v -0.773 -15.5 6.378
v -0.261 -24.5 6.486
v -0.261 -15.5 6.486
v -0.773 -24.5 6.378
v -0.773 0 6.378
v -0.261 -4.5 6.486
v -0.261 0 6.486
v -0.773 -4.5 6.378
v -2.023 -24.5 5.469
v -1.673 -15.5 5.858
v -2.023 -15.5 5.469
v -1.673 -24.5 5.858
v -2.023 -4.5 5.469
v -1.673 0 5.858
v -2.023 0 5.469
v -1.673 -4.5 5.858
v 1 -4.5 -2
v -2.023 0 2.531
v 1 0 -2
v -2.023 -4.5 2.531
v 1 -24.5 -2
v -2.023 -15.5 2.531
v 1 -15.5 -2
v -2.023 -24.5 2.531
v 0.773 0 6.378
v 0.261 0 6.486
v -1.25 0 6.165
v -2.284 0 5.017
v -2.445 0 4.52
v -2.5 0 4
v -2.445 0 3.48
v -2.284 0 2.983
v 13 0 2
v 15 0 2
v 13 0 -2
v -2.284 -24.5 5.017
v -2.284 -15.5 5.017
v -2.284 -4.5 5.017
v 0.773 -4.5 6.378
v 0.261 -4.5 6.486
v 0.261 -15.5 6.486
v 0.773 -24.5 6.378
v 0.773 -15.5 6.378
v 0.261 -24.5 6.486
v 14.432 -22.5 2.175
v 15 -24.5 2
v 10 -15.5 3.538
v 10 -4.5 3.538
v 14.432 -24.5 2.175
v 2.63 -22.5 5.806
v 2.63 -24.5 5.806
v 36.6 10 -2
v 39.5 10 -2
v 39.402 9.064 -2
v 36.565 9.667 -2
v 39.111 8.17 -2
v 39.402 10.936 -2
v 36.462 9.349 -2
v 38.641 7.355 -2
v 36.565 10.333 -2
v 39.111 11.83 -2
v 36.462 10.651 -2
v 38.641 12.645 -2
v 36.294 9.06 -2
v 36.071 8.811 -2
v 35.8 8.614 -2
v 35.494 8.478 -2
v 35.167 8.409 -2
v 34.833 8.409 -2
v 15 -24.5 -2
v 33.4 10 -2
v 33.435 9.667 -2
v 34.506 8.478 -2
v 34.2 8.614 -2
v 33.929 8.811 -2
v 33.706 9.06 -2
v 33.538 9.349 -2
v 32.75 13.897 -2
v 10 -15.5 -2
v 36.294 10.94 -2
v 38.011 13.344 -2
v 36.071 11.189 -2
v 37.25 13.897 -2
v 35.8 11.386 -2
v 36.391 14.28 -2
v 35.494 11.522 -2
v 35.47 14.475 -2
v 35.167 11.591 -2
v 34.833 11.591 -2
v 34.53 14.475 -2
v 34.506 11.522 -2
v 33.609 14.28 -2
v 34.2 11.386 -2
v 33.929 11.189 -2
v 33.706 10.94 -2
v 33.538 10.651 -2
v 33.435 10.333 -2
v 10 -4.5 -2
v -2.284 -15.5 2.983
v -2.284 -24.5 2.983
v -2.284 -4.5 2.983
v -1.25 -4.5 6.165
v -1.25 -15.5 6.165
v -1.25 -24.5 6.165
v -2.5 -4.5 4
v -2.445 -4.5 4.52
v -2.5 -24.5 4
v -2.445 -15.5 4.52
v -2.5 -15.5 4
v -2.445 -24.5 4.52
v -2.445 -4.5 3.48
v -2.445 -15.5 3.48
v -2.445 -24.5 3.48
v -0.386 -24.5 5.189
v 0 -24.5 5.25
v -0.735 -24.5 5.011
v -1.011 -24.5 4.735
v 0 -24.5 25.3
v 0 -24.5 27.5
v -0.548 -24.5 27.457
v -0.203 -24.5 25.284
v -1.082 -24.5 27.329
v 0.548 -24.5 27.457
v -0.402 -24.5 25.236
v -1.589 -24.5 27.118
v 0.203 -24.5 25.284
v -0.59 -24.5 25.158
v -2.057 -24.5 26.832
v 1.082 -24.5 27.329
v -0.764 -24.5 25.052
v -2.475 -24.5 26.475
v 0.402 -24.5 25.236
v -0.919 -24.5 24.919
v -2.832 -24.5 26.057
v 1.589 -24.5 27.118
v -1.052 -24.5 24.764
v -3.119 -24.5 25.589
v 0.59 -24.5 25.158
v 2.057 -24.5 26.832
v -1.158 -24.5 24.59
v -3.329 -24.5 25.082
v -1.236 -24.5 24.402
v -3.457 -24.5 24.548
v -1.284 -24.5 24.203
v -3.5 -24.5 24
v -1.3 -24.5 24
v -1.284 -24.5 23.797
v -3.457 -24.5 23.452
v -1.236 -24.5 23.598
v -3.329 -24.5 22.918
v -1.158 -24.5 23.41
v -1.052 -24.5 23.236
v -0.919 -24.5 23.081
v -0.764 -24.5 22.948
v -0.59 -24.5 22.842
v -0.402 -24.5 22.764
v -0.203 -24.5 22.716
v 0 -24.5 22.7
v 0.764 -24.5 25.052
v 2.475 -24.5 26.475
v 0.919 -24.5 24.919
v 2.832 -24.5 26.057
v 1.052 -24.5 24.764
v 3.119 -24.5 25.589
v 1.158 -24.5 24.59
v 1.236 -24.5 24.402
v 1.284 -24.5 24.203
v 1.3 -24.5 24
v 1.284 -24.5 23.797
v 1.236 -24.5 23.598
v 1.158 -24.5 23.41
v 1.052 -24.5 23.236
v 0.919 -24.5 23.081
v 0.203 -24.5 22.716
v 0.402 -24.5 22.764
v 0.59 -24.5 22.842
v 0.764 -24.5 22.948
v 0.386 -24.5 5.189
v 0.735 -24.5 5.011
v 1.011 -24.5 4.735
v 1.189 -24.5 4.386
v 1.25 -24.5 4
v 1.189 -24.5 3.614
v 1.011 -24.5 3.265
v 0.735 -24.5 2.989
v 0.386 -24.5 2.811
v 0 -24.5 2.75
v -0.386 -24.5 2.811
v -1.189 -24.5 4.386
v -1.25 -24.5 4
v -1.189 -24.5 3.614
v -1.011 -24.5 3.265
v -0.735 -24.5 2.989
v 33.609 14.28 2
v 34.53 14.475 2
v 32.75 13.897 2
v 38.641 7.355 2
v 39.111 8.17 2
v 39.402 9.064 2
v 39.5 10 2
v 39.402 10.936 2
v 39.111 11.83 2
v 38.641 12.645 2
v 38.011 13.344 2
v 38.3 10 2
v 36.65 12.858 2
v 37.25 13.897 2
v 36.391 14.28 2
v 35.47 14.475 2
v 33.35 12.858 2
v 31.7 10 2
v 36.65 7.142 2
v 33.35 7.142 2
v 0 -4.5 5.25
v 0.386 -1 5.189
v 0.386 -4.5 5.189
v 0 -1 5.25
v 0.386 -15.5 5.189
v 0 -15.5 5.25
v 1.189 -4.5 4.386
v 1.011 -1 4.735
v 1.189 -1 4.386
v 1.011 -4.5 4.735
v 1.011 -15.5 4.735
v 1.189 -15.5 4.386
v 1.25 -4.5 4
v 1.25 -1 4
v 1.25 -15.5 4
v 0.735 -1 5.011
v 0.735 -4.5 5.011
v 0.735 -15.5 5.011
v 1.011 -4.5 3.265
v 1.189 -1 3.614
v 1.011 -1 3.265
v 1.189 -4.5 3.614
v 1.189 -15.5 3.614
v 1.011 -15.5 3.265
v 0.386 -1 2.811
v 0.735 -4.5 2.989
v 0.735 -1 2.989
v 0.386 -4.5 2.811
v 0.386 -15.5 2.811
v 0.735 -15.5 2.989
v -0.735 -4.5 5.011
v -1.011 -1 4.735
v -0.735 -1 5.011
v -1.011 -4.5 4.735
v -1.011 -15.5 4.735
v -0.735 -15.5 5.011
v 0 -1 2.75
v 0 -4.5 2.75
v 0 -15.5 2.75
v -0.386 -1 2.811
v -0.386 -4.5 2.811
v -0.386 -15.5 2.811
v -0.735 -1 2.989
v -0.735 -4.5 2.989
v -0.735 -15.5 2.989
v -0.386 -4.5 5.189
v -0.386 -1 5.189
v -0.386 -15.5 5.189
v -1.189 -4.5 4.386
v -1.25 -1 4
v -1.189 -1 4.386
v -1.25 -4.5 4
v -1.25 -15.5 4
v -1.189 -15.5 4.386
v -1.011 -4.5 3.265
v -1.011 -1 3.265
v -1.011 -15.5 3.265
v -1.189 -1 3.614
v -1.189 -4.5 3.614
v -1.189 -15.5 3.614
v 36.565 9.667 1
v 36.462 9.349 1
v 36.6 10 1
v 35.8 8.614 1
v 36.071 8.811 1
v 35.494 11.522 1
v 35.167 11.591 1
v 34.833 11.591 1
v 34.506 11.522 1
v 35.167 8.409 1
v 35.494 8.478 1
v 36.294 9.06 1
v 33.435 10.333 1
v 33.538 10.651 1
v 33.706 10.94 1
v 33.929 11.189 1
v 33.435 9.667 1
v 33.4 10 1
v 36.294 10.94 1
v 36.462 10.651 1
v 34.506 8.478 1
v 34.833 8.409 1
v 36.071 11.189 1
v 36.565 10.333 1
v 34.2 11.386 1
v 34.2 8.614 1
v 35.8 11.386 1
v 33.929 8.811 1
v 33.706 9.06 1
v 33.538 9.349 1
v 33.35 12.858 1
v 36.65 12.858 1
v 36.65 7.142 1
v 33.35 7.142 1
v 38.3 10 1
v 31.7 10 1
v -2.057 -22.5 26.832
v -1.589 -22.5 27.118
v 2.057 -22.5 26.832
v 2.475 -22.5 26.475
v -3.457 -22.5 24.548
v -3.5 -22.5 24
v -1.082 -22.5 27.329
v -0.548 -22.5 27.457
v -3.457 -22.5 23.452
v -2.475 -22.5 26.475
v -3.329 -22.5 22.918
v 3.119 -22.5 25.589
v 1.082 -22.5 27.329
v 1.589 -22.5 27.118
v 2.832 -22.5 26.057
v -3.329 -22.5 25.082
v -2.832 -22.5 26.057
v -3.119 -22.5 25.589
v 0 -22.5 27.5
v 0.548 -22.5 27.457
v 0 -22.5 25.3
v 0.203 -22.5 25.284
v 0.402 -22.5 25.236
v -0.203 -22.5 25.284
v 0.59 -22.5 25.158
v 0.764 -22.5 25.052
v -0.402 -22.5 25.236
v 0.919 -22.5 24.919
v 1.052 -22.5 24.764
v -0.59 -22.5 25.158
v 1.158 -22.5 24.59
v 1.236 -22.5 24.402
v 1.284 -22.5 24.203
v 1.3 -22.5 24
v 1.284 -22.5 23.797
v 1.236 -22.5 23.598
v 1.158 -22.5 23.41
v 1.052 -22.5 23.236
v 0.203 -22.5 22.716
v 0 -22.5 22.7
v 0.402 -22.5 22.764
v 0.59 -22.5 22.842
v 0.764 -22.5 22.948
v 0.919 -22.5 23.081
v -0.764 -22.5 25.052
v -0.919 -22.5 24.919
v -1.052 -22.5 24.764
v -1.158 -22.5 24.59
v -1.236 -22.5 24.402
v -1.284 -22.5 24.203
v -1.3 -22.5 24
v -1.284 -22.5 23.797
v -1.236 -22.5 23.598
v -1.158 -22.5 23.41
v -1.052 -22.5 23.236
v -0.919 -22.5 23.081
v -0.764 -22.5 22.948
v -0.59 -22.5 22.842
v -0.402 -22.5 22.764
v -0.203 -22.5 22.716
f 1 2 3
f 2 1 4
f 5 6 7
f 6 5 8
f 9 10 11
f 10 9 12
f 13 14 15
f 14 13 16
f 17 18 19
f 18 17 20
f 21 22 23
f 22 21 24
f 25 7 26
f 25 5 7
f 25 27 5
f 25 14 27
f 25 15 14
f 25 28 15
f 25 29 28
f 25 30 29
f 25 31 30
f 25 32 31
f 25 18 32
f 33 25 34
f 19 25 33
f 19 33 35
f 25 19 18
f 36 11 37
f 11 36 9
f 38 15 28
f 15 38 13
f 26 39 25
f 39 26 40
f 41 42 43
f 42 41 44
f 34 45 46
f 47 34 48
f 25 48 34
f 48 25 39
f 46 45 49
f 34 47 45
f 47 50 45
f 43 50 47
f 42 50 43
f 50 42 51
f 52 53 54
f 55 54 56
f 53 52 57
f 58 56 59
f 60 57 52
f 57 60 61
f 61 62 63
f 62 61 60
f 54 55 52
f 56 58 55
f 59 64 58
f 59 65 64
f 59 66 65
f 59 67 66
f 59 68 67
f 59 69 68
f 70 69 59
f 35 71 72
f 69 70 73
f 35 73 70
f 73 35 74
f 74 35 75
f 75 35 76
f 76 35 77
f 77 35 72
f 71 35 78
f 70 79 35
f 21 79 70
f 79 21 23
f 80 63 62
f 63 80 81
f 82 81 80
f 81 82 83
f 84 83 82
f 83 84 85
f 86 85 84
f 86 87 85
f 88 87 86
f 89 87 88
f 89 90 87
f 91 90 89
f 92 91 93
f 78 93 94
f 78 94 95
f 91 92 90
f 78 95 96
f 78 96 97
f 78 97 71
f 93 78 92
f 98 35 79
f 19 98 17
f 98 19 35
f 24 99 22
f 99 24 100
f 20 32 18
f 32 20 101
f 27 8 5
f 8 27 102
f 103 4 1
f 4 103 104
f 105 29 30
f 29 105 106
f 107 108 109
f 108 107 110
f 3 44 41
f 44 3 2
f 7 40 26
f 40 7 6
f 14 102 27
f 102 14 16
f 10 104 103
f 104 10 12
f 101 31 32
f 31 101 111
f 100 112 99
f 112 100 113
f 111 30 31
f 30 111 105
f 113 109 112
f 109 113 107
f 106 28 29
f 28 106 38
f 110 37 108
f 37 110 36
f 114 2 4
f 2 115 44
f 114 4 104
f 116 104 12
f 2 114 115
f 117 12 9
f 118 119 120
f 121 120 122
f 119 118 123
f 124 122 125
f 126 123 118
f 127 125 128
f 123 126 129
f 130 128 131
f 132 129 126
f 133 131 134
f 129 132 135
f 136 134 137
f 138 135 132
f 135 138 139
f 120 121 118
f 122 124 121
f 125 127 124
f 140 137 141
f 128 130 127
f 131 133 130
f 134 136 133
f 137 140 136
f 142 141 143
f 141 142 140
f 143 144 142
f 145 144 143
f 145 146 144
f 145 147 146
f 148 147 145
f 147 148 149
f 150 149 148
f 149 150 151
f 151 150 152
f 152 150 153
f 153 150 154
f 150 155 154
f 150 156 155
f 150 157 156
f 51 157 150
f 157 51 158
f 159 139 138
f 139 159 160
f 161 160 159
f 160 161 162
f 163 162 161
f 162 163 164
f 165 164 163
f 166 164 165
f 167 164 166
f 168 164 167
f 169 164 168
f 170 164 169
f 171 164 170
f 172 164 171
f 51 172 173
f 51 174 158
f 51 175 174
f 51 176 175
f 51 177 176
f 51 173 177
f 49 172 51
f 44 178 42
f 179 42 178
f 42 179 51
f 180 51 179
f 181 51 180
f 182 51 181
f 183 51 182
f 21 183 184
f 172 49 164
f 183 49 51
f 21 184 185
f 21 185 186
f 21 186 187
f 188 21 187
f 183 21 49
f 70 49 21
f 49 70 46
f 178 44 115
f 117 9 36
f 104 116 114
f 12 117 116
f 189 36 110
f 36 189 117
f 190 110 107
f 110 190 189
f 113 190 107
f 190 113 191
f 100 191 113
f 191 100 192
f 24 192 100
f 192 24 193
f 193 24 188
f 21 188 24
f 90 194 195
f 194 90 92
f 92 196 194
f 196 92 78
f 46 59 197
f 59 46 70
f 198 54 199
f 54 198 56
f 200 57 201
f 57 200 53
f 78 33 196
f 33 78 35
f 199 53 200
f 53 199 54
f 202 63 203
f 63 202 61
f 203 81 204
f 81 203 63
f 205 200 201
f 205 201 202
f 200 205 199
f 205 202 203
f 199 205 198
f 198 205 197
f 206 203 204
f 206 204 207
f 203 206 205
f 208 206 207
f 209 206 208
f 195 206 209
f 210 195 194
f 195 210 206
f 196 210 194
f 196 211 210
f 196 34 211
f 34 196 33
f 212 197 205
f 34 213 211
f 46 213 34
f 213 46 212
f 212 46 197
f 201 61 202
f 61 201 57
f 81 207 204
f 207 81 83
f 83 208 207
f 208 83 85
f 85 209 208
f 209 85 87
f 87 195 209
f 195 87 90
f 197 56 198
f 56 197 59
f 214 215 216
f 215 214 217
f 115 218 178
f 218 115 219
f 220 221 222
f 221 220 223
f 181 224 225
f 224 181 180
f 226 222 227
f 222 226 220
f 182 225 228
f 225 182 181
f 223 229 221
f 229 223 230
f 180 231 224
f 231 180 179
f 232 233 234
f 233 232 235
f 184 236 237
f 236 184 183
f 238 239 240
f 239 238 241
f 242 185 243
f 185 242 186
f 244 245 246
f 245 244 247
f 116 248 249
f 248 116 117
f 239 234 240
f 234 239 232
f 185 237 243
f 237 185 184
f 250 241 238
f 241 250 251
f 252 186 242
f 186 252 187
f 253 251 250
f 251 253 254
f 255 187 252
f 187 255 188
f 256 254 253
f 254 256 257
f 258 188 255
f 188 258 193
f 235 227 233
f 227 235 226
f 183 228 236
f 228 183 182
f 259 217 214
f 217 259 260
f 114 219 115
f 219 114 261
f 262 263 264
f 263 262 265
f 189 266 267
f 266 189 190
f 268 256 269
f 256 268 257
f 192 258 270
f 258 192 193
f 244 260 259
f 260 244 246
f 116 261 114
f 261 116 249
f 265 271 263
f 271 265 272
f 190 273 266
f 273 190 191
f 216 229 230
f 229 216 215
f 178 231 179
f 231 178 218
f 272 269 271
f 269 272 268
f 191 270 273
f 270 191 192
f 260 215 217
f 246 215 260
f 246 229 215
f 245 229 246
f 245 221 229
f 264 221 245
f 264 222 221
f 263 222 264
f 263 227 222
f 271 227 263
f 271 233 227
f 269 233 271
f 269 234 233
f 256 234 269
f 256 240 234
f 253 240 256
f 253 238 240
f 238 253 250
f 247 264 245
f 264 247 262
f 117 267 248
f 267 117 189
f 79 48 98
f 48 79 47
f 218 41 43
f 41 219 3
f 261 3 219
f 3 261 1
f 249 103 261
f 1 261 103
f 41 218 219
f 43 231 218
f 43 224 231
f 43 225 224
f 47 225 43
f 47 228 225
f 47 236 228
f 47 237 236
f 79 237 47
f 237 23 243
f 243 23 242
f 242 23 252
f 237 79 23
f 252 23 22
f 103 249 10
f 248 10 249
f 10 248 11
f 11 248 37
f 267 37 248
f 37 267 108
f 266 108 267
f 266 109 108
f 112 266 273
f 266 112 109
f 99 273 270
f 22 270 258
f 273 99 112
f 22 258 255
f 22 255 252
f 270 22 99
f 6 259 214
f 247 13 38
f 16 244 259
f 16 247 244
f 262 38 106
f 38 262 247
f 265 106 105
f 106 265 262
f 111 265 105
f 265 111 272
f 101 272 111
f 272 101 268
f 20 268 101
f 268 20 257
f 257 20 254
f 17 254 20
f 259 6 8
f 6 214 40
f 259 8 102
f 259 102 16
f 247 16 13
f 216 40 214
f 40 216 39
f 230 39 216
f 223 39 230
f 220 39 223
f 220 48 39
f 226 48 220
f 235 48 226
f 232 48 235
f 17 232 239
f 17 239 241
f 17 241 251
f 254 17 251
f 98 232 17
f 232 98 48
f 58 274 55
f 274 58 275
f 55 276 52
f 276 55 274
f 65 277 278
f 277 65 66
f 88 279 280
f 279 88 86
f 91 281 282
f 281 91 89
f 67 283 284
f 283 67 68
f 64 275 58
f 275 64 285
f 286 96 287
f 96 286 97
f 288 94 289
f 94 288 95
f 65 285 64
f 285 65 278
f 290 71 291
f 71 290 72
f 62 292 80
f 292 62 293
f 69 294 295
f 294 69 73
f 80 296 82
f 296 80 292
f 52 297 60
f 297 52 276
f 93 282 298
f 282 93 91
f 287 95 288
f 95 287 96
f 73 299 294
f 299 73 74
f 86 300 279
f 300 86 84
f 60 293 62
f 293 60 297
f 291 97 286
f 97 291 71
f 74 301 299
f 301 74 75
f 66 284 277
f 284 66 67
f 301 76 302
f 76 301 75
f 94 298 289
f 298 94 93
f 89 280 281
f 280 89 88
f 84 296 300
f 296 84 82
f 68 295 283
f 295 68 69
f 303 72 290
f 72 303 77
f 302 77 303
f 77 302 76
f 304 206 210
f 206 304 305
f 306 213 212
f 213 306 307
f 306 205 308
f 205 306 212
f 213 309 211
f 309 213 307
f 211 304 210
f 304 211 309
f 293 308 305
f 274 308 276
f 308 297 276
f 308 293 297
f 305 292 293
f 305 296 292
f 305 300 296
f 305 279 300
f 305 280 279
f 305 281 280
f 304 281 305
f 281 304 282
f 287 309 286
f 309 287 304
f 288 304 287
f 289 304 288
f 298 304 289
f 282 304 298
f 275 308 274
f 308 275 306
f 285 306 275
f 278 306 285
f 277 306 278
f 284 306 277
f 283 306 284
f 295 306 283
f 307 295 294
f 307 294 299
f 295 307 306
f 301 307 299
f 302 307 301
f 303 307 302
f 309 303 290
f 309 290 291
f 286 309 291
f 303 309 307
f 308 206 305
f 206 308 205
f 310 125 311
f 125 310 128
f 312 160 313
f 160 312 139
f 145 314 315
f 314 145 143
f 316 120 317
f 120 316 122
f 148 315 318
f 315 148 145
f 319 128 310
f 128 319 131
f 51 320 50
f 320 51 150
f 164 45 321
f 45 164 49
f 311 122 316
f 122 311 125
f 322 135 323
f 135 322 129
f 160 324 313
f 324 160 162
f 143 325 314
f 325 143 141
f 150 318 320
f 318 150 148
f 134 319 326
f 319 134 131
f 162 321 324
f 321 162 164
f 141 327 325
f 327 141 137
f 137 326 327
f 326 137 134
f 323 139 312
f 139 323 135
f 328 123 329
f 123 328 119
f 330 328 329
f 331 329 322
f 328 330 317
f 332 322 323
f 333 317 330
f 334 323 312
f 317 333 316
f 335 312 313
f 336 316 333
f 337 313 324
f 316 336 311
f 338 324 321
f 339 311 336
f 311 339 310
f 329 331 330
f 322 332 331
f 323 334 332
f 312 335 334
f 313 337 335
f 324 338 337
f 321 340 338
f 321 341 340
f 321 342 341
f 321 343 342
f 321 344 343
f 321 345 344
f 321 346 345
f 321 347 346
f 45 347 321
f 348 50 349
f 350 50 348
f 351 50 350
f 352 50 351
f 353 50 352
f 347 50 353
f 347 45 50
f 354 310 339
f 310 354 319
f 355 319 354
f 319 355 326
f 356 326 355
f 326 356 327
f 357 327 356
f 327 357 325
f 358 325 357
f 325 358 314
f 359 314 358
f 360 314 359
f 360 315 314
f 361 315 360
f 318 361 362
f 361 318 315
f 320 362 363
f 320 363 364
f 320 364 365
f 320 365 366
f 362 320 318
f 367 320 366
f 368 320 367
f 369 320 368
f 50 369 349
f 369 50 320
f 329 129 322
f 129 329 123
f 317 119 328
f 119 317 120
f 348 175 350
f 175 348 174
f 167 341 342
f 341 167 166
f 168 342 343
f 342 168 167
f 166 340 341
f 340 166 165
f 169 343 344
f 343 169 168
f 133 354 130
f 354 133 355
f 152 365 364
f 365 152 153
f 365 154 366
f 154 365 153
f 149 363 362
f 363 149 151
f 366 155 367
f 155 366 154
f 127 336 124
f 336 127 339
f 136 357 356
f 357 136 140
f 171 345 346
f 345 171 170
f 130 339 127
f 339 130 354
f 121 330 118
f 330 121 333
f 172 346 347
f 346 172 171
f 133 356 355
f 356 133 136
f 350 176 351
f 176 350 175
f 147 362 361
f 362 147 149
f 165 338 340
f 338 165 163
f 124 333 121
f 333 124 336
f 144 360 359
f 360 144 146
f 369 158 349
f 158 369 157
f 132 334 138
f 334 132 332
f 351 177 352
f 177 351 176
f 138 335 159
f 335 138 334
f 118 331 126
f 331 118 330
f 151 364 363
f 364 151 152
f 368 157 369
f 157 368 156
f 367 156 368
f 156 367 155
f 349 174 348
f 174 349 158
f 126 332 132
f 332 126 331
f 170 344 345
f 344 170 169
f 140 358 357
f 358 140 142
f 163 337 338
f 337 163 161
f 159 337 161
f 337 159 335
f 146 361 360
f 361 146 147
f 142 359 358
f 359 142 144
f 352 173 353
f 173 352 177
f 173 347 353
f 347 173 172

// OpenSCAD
// file: ../888_3007.scad
// Drzak ocasni tyce pod podlozkou

include<../parameters.scad>

rear_wheel_holder_thickness = 4;
rear_wheel_holder_excentric = rear_wheel_holder_thickness/2+2;

module 888_3007(){
difference(){
    union(){
        hull(){
            translate([5, 0, 0]) cylinder(d = rear_wheel_holder_thickness, h = 10+10+5-0.5, $fn=$preview?10:30);
            translate([0, rear_wheel_holder_excentric, 0]) cylinder(d = rear_wheel_holder_thickness+1, h = 10+10+5-0.5, $fn=$preview?10:30);
            translate([1, -rear_wheel_holder_thickness/2, 0]) cube([15-1, rear_wheel_holder_thickness, 25-0.5]);
        }
        hull(){
            translate([15+20, 0, -10]) rotate([90, 0, 0]) cylinder(d = 9, h = rear_wheel_holder_thickness, $fn=$preview?10:30, center = true);
            translate([-2+15, -rear_wheel_holder_thickness/2, 0]) cube([2, rear_wheel_holder_thickness, 25-0.5]);
        }
    }
    translate([0, rear_wheel_holder_excentric, 0]) translate([0, 0, 1]) cylinder(d = 2.5, h=50, $fn = $preview?7:20);
    translate([0, 0, 5+5]) cube([20, 20, 11], center = true);
    translate([15+20, 0, -10]) rotate([90, 0, 0]) cylinder(d = M3_screw_diameter, h = 9, $fn=$preview?10:30, center = true);
    translate([15+20, 9, -10]) rotate([90, 0, 0]) cylinder(d = M3_nut_diameter, h = 8, $fn=6);


}
    translate([0, 0, 10+10+5+0.5-2-1]) difference(){
        hull(){
            translate([10, 0, 1]) cube([10, 2, 2], center = true);
            translate([0, 20 + rear_wheel_holder_excentric, 0]) cylinder(d = 7, h=2, $fn=40);
        }
        translate([0, 20 + rear_wheel_holder_excentric, 0]) cylinder(d = 2.6, h=2, $fn=40);
    }
}


888_3007();
// file: ../../parameters.scad
global_clearance = 0.5;

layer_thickness = 0.3;

//Main tube diameter - hole [mm]
main_tube_outer_diameter = 25.4;
main_tube_inner_diameter = 23.05;

// Nastavení parametrů rotoru

gliding_aggle = 14;         // tenhle úhel by se zřejmě v budoucnu měl počítat z požadované klouzavosti.

rotor_blade_AOA = 1.5;      // nastavení úhlu náběhu rotorového listu

// Rotor Auto-G2
rotor_blade_rod = true;  // generovat diru pro uhlikove tycky
rotor_blade_length = 400 - 15;   // délka rotorového listu
rotor_blade_depth = 45.5;     // hloubka rotorového listu


blade_mount_length = 30;

blade_mount_width = 17;
blade_mount_thickness = 4.6;
blade_mount_screw_offset = 5; // distance of first screw from rotor end

// Testovaci maly rotor

        /*
        rotor_blade_rod = false;
        rotor_blade_length = 145;   // délka rotorového listu
        rotor_blade_depth = 45.5 * (145/385);     // hloubka rotorového listu
        blade_mount_length = 20;
        blade_mount_width = 10;
        blade_mount_thickness = 4;
        */

// konec parametru pro testovaci maly rotor

rotor_height = 180;         // výška otočného kloubu rotoru nad hlavní trubkou vírníku (odhad)
rotor_blades_count = 2;
rotor_delta_angle = 12;
rotor_blade_thickness = 5.1;

rotor_blade_naca = 2412;
rotor_blade_parts_count = 3;

blade_transition_length = 10; // length of blade transition

blade_mount_screw_distance = (16.47+11.86)/2;

/* blade_shell_thickness = 0.4;
blade_shell_thickness_inner = 0.4;
blade_shell_thickness_wire = 0.4;
blade_infill_distance = 25;
blade_infill_overlap = 0; */

/// Nastaveni pro Slic3r
blade_shell_thickness = 0.45;
blade_shell_thickness_inner = 0.43;
blade_shell_thickness_wire = 0.45;
blade_infill_distance = 20;
blade_infill_overlap = 0;


//blade_rod_position = [rotor_blade_depth/4 + 5, 0, 0];
//blade_rod_position2 = [rotor_blade_depth/4 - 5, 0, 0];

//blade_rod_position = [15, 0, 0];
//blade_rod_position2 = [4, 0.3, 0];

blade_rod1_diameter = 2.58;
blade_rod2_diameter = 2.58;
blade_rod3_diameter = 2.13;

blade_rod1_position = [3.4, 0.3, 0];
blade_rod2_position = [rotor_blade_depth/4 - 4, 0.2, 0];
blade_rod3_position = [rotor_blade_depth/4 + 3.5, 0, 0];


rotor_head_width =  30;    //Rozměr 1 v nákresu
pilon_wall_thickness = 4.2;  // Rozměr 2 v nákresu
horizontal_screw_distance = 14.5;   // Rozměr 4 v nákresu
vertical_screw_distance = 12;       // rozměr 5 v nkresu
topscrew_distance_endofpilon = 5;

rotorhead_wall_thickness = 3; // sila tistenych dilu


bearing_outer_diameter = 10.2;    // Rozměr B1 v nákresu s přídavkem na toleranci otvoru
bearing_thickness = 4;        // Rozměr B2 v nákresu
//bearing_shaft_length = 19.5;    // Rozměr B3 v nákresu, Originalni hodnota 19.5
bearing_shaft_length = 20;    // Rozměr B3 v nákresu


// nastavení parametrů motoru

engine_angle = -8;
engine_diameter = 55;
engine_offset = 55;

engine_screws_radius = 15;
engine_holes_radius = (24 + 44)/4;
engine_shatf_hole_diameter = 13;

// screw length step - minimum difference in length between two types of screws
basic_screw_length = 5;

//Screw diameter and nut for M6 [mm]
M6_screw_diameter=6.5;
M6_head_diameter = 10+0.5;
M6_head_height = 6;
M6_nut_height = 4.9;
M6_nut_diameter = 11.8;
M6_nut_pocket = 10.4;

//Screw diameter and nut for M5 [mm]
M5_screw_diameter=5.5;
M5_head_height = 5;
M5_head_diameter = 13+0.5;
M5_nut_height = 4.5;
M5_nut_diameter = 9.4;
M5_nut_pocket = 8.4;

//Screw diameter and nut for M4 [mm]
M4_screw_diameter=4.5;
M4_screw_head_height = 4;
M4_nut_height = 3.2;
M4_nut_diameter = 8.4;
M4_nut_pocket = 7.5;

//Screw diameter and nut for M3 [mm]
M3_screw_diameter = 3.2;
M3_nut_height = 2.7;
M3_nut_diameter = 6.6;
M3_screw_head_height = 3;
M3_nut_pocket = 5.6;


//Screw diameter and nut for M2,5 [mm]
M2_5_screw_diameter = 2.7;
M2_5_nut_height = 2.3;
M2_5_nut_diameter = 6;
M2_5_nut_pocket = 5.1;

//Screw diameter and nut for M2 [mm]
M2_screw_diameter = 2.0;
M2_nut_height = 1.8;
M2_nut_diameter = 4.8;
M2_nut_pocket = 3.95;


blade_mount_screw = M2_screw_diameter;
blade_mount_nut = M2_nut_diameter;


//šroub servo
Servo_screw = 1.5;
Servo_nut_height = 1;
Servo_nut_diameter = 2.7;

tail_pipes_distance = 10.16*5;
tail_pipes_diameter = M4_screw_diameter;
tail_pipes_min_wall = 3;

elevator_pitch = 2;


/// ruder parametry

rudder_height = 150;
height_bottom_part = 130;
rudder_depth_max = 200;

below_rudder_height = 30;
rudder_depth = 60;

tail_airfoil_n = 80;




//center_of_gravity_position = [main_pilon_position - tan(gliding_aggle)*rotor_height, 0, 0];


base_patern = 10.16;
////podzvozek

radius_undercarriage = 25;
vzdalenost_x = tan(20) * 131;
vzdalenost_y = (131 - radius_undercarriage)/tan(79);
uhel_y = 90 - 20;
uhel_x = 90 - 79;

maximum_printable_size = 150;


////Pitotova trubice
Pitot_tube_diameter = 4.02 + 1;
Distance_hole_from_tube = 11.92;  //vzdálenost otvoru pro připevnění od samotné trubičky


////Vlečné zařízení
tow_ring_diameter = 20;
tow_ring_thickness = 5;
tow_ring_groove = 2;
tow_ring_hole_diameter = M3_screw_diameter;

////Simoniny parametry pro nosník rotoru
base_length = 290; //delka podlozky
base_split_position = [0, 150, base_length];
base_width = 70; //sirka podlozky - vnější šířka nosníku
base_thickness = 4; //vyska podlozky
base_patern = 10;
rantl_thickness = 4; //sirka steny podlozky
rantl_height = 8;
niy=4; //pocet der podelne


// Drazak motoru

motor_holder_height = base_patern * 5;
motor_holder_thickness = 4;
motor_holder_motor_height = 25;
motor_holder_side_mount_height = base_patern*2.5;
pilon_holder_side_mount_height = base_patern*4;


// Paraetry pilonu


// pilon_height = 250 - pilon_holder_side_mount_height;
pilon_height = 180 - pilon_holder_side_mount_height;
pilot_height_separation = 120 - pilon_holder_side_mount_height;
pilon_thickness = 3;
pilon_beam_width = 10;
pilon_base_length = 60;
pilon_ring_length = 40;
pilon_ring_thickness = 3;

pilon_top_width = 20;
pilon_top_length = 20;

pilon_ring_width = 45;
pilon_ring_height_rantl = 12+0.5;
pilon_ring_height = 3;

pilon_angle = atan2(pilon_height,(base_width-pilon_top_width)/2);
echo(pilon_angle);

pilon_bottom_angle = atan2(pilot_height_separation,(base_width-pilon_ring_width)/2-pilon_thickness*1.5);
echo(pilon_bottom_angle);
pilon_top_angle = atan2(pilon_height - pilot_height_separation,(pilon_ring_width - rotor_head_width)/2 - pilon_thickness - pilon_ring_thickness);
echo(pilon_top_angle);
// main file
//@set_slicing_config(../../slicing/default.ini)

//drzak zadniho kolecka
include <../../parameters.scad>
use <../888_3007.scad>

rotate([90, 0, 0])
    888_3007();
